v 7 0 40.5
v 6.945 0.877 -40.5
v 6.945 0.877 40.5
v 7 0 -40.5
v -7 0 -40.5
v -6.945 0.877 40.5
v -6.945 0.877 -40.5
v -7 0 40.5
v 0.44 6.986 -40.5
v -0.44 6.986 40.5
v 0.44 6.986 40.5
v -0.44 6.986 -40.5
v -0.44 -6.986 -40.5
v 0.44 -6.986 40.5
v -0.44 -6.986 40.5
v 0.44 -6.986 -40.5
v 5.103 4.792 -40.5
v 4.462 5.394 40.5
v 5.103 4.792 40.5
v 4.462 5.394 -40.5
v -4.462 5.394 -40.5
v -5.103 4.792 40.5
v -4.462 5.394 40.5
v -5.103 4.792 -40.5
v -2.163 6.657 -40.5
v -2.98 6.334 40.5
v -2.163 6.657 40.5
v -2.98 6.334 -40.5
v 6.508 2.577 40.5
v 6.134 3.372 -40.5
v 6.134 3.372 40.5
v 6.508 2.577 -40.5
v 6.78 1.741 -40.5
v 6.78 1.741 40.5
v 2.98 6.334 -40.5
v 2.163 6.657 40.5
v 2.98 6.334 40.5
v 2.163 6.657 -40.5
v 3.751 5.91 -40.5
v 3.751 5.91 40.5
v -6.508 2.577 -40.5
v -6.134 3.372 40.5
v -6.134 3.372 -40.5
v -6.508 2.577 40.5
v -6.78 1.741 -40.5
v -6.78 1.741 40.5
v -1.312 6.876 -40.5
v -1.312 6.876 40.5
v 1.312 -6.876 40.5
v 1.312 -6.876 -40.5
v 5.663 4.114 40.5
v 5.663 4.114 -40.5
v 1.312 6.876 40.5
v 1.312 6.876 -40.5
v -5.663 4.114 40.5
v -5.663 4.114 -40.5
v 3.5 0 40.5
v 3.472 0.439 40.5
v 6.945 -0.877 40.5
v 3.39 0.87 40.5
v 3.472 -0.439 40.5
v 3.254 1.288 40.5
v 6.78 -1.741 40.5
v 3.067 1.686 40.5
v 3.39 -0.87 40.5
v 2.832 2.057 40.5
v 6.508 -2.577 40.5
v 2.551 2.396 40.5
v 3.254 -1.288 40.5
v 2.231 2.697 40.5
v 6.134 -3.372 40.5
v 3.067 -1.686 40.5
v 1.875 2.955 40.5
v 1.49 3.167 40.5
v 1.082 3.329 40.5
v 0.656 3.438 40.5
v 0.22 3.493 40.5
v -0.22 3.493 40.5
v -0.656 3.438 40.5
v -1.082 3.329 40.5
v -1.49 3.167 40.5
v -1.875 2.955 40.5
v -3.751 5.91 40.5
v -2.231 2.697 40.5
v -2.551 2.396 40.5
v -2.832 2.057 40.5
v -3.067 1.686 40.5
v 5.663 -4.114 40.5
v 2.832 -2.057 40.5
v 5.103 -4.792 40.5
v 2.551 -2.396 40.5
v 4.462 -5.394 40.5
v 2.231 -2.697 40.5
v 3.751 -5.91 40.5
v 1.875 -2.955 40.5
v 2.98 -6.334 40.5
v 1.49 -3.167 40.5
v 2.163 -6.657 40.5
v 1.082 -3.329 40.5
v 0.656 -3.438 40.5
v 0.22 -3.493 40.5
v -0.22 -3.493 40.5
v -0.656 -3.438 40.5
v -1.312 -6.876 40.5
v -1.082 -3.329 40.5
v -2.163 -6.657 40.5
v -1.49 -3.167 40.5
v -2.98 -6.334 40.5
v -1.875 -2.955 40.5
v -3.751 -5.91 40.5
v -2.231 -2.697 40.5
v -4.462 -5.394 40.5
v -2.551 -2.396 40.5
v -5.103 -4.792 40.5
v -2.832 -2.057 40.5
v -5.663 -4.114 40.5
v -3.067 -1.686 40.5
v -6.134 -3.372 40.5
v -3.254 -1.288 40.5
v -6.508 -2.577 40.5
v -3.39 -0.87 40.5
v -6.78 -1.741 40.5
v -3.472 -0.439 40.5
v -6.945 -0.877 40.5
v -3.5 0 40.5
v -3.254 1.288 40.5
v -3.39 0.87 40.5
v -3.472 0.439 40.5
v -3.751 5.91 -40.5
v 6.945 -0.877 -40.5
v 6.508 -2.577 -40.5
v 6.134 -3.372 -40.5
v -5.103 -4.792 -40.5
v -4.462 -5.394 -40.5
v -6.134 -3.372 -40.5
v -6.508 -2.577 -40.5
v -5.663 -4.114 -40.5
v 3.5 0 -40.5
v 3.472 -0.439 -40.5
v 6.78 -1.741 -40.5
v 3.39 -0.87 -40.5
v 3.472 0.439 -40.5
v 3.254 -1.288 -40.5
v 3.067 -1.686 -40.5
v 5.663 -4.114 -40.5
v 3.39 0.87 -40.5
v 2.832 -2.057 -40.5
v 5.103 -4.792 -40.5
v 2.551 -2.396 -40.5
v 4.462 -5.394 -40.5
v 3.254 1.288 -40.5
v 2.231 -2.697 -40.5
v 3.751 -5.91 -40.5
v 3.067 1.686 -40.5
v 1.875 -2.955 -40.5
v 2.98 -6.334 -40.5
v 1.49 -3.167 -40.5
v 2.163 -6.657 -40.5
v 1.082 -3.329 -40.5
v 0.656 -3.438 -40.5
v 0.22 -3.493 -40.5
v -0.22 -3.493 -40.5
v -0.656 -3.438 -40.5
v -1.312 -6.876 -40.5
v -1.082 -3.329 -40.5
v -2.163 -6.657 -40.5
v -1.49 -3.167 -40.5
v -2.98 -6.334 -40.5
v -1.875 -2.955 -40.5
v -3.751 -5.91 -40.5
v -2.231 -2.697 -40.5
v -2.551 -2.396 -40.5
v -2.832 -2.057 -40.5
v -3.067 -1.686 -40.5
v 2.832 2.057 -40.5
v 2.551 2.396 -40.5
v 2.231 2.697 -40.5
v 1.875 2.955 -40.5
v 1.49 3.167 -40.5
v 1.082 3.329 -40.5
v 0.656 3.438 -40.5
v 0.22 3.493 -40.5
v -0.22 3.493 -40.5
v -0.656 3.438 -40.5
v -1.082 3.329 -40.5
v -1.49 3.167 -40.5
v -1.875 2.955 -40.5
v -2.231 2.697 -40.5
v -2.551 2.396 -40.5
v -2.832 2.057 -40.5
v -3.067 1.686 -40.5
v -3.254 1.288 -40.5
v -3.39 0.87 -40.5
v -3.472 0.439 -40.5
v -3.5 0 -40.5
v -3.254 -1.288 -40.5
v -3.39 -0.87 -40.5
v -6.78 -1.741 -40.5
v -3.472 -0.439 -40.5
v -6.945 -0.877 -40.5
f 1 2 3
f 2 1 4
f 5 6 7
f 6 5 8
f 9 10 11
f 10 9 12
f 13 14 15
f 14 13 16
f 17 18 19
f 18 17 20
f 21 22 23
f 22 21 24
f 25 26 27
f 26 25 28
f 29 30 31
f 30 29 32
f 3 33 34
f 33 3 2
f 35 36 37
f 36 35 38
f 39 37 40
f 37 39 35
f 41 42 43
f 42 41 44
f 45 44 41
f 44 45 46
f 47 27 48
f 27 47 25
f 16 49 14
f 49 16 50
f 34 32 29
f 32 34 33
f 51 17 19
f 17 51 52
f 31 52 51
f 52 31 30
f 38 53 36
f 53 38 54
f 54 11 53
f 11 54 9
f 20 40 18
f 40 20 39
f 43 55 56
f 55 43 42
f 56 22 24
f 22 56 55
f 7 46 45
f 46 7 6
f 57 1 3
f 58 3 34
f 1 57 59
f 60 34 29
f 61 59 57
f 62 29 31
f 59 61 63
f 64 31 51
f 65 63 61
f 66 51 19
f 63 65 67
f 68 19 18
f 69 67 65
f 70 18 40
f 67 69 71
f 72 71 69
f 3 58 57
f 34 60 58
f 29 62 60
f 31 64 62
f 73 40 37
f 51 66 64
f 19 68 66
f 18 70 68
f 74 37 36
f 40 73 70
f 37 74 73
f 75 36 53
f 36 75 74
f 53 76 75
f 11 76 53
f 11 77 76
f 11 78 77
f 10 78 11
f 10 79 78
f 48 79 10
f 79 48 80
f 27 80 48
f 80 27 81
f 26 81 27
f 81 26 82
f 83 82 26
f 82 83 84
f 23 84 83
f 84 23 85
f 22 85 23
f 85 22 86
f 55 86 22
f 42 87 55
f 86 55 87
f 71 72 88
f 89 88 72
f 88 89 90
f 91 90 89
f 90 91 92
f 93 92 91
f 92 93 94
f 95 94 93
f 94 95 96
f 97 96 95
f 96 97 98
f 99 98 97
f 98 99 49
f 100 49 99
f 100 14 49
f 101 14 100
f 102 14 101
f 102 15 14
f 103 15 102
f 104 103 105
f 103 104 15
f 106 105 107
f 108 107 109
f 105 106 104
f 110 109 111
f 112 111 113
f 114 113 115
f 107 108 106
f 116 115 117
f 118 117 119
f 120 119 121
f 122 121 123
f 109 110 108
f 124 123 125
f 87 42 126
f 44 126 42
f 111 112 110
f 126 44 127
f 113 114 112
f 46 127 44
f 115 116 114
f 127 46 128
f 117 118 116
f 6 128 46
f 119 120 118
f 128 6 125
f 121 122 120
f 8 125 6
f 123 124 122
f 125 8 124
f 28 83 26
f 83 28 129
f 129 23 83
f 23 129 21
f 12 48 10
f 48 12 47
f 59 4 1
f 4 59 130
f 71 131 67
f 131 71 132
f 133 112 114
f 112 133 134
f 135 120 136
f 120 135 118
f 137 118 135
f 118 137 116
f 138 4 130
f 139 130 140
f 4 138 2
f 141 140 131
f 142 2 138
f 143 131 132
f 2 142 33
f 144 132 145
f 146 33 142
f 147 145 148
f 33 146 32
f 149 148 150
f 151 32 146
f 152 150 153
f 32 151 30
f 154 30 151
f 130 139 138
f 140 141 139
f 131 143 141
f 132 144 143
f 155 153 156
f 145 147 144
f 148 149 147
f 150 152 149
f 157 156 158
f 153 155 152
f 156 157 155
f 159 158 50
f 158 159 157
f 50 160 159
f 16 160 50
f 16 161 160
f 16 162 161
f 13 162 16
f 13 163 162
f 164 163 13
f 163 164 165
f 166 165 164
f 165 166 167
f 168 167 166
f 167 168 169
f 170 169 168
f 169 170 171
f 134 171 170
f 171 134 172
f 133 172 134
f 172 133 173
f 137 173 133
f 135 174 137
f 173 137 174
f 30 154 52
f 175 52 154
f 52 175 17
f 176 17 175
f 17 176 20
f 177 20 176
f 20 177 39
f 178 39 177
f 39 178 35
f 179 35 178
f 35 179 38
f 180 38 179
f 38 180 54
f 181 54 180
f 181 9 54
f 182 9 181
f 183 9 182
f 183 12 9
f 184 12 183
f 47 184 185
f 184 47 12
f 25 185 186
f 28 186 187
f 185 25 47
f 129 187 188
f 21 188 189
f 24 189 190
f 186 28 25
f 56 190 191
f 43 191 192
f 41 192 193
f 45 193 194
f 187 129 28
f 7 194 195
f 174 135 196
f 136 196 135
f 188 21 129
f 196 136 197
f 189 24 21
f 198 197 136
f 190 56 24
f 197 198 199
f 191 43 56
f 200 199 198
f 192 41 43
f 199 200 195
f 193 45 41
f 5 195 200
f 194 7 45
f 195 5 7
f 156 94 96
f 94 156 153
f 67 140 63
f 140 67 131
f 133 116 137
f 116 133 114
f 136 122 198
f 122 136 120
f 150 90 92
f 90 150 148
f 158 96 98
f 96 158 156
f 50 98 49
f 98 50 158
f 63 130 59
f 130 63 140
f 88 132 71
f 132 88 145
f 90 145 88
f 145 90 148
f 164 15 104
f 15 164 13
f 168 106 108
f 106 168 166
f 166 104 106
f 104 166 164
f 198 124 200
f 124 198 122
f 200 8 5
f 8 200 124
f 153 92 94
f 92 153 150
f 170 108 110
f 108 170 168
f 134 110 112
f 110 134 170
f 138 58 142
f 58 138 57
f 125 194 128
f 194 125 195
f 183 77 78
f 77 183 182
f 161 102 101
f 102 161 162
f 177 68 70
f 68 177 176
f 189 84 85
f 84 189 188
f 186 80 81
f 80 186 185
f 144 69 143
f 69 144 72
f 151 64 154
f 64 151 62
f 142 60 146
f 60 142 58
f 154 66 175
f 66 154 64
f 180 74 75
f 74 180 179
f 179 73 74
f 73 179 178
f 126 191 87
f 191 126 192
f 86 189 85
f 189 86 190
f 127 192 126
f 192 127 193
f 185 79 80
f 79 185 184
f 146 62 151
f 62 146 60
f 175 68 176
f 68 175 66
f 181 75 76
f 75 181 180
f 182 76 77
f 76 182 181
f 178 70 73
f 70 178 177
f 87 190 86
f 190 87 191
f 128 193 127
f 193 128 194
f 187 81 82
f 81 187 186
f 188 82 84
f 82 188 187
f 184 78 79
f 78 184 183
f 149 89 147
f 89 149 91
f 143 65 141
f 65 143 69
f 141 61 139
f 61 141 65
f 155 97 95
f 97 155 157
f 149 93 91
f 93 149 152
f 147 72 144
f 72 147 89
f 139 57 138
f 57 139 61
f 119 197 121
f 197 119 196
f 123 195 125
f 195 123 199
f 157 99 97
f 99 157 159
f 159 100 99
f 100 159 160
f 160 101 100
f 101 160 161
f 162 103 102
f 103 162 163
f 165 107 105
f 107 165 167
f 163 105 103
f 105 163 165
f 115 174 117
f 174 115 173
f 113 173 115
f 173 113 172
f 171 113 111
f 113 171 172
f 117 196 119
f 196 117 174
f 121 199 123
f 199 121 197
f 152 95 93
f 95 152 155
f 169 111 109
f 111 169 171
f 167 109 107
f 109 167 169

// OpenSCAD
$fn = 50;


difference() {
	union() {
		translate(v = [0, 0, -40.5000000000]) {
			cylinder(h = 81, r = 7.0000000000);
		}
	}
	union() {
		translate(v = [0, 0, -100.0000000000]) {
			cylinder(h = 200, r = 3.5000000000);
		}
	}
}
